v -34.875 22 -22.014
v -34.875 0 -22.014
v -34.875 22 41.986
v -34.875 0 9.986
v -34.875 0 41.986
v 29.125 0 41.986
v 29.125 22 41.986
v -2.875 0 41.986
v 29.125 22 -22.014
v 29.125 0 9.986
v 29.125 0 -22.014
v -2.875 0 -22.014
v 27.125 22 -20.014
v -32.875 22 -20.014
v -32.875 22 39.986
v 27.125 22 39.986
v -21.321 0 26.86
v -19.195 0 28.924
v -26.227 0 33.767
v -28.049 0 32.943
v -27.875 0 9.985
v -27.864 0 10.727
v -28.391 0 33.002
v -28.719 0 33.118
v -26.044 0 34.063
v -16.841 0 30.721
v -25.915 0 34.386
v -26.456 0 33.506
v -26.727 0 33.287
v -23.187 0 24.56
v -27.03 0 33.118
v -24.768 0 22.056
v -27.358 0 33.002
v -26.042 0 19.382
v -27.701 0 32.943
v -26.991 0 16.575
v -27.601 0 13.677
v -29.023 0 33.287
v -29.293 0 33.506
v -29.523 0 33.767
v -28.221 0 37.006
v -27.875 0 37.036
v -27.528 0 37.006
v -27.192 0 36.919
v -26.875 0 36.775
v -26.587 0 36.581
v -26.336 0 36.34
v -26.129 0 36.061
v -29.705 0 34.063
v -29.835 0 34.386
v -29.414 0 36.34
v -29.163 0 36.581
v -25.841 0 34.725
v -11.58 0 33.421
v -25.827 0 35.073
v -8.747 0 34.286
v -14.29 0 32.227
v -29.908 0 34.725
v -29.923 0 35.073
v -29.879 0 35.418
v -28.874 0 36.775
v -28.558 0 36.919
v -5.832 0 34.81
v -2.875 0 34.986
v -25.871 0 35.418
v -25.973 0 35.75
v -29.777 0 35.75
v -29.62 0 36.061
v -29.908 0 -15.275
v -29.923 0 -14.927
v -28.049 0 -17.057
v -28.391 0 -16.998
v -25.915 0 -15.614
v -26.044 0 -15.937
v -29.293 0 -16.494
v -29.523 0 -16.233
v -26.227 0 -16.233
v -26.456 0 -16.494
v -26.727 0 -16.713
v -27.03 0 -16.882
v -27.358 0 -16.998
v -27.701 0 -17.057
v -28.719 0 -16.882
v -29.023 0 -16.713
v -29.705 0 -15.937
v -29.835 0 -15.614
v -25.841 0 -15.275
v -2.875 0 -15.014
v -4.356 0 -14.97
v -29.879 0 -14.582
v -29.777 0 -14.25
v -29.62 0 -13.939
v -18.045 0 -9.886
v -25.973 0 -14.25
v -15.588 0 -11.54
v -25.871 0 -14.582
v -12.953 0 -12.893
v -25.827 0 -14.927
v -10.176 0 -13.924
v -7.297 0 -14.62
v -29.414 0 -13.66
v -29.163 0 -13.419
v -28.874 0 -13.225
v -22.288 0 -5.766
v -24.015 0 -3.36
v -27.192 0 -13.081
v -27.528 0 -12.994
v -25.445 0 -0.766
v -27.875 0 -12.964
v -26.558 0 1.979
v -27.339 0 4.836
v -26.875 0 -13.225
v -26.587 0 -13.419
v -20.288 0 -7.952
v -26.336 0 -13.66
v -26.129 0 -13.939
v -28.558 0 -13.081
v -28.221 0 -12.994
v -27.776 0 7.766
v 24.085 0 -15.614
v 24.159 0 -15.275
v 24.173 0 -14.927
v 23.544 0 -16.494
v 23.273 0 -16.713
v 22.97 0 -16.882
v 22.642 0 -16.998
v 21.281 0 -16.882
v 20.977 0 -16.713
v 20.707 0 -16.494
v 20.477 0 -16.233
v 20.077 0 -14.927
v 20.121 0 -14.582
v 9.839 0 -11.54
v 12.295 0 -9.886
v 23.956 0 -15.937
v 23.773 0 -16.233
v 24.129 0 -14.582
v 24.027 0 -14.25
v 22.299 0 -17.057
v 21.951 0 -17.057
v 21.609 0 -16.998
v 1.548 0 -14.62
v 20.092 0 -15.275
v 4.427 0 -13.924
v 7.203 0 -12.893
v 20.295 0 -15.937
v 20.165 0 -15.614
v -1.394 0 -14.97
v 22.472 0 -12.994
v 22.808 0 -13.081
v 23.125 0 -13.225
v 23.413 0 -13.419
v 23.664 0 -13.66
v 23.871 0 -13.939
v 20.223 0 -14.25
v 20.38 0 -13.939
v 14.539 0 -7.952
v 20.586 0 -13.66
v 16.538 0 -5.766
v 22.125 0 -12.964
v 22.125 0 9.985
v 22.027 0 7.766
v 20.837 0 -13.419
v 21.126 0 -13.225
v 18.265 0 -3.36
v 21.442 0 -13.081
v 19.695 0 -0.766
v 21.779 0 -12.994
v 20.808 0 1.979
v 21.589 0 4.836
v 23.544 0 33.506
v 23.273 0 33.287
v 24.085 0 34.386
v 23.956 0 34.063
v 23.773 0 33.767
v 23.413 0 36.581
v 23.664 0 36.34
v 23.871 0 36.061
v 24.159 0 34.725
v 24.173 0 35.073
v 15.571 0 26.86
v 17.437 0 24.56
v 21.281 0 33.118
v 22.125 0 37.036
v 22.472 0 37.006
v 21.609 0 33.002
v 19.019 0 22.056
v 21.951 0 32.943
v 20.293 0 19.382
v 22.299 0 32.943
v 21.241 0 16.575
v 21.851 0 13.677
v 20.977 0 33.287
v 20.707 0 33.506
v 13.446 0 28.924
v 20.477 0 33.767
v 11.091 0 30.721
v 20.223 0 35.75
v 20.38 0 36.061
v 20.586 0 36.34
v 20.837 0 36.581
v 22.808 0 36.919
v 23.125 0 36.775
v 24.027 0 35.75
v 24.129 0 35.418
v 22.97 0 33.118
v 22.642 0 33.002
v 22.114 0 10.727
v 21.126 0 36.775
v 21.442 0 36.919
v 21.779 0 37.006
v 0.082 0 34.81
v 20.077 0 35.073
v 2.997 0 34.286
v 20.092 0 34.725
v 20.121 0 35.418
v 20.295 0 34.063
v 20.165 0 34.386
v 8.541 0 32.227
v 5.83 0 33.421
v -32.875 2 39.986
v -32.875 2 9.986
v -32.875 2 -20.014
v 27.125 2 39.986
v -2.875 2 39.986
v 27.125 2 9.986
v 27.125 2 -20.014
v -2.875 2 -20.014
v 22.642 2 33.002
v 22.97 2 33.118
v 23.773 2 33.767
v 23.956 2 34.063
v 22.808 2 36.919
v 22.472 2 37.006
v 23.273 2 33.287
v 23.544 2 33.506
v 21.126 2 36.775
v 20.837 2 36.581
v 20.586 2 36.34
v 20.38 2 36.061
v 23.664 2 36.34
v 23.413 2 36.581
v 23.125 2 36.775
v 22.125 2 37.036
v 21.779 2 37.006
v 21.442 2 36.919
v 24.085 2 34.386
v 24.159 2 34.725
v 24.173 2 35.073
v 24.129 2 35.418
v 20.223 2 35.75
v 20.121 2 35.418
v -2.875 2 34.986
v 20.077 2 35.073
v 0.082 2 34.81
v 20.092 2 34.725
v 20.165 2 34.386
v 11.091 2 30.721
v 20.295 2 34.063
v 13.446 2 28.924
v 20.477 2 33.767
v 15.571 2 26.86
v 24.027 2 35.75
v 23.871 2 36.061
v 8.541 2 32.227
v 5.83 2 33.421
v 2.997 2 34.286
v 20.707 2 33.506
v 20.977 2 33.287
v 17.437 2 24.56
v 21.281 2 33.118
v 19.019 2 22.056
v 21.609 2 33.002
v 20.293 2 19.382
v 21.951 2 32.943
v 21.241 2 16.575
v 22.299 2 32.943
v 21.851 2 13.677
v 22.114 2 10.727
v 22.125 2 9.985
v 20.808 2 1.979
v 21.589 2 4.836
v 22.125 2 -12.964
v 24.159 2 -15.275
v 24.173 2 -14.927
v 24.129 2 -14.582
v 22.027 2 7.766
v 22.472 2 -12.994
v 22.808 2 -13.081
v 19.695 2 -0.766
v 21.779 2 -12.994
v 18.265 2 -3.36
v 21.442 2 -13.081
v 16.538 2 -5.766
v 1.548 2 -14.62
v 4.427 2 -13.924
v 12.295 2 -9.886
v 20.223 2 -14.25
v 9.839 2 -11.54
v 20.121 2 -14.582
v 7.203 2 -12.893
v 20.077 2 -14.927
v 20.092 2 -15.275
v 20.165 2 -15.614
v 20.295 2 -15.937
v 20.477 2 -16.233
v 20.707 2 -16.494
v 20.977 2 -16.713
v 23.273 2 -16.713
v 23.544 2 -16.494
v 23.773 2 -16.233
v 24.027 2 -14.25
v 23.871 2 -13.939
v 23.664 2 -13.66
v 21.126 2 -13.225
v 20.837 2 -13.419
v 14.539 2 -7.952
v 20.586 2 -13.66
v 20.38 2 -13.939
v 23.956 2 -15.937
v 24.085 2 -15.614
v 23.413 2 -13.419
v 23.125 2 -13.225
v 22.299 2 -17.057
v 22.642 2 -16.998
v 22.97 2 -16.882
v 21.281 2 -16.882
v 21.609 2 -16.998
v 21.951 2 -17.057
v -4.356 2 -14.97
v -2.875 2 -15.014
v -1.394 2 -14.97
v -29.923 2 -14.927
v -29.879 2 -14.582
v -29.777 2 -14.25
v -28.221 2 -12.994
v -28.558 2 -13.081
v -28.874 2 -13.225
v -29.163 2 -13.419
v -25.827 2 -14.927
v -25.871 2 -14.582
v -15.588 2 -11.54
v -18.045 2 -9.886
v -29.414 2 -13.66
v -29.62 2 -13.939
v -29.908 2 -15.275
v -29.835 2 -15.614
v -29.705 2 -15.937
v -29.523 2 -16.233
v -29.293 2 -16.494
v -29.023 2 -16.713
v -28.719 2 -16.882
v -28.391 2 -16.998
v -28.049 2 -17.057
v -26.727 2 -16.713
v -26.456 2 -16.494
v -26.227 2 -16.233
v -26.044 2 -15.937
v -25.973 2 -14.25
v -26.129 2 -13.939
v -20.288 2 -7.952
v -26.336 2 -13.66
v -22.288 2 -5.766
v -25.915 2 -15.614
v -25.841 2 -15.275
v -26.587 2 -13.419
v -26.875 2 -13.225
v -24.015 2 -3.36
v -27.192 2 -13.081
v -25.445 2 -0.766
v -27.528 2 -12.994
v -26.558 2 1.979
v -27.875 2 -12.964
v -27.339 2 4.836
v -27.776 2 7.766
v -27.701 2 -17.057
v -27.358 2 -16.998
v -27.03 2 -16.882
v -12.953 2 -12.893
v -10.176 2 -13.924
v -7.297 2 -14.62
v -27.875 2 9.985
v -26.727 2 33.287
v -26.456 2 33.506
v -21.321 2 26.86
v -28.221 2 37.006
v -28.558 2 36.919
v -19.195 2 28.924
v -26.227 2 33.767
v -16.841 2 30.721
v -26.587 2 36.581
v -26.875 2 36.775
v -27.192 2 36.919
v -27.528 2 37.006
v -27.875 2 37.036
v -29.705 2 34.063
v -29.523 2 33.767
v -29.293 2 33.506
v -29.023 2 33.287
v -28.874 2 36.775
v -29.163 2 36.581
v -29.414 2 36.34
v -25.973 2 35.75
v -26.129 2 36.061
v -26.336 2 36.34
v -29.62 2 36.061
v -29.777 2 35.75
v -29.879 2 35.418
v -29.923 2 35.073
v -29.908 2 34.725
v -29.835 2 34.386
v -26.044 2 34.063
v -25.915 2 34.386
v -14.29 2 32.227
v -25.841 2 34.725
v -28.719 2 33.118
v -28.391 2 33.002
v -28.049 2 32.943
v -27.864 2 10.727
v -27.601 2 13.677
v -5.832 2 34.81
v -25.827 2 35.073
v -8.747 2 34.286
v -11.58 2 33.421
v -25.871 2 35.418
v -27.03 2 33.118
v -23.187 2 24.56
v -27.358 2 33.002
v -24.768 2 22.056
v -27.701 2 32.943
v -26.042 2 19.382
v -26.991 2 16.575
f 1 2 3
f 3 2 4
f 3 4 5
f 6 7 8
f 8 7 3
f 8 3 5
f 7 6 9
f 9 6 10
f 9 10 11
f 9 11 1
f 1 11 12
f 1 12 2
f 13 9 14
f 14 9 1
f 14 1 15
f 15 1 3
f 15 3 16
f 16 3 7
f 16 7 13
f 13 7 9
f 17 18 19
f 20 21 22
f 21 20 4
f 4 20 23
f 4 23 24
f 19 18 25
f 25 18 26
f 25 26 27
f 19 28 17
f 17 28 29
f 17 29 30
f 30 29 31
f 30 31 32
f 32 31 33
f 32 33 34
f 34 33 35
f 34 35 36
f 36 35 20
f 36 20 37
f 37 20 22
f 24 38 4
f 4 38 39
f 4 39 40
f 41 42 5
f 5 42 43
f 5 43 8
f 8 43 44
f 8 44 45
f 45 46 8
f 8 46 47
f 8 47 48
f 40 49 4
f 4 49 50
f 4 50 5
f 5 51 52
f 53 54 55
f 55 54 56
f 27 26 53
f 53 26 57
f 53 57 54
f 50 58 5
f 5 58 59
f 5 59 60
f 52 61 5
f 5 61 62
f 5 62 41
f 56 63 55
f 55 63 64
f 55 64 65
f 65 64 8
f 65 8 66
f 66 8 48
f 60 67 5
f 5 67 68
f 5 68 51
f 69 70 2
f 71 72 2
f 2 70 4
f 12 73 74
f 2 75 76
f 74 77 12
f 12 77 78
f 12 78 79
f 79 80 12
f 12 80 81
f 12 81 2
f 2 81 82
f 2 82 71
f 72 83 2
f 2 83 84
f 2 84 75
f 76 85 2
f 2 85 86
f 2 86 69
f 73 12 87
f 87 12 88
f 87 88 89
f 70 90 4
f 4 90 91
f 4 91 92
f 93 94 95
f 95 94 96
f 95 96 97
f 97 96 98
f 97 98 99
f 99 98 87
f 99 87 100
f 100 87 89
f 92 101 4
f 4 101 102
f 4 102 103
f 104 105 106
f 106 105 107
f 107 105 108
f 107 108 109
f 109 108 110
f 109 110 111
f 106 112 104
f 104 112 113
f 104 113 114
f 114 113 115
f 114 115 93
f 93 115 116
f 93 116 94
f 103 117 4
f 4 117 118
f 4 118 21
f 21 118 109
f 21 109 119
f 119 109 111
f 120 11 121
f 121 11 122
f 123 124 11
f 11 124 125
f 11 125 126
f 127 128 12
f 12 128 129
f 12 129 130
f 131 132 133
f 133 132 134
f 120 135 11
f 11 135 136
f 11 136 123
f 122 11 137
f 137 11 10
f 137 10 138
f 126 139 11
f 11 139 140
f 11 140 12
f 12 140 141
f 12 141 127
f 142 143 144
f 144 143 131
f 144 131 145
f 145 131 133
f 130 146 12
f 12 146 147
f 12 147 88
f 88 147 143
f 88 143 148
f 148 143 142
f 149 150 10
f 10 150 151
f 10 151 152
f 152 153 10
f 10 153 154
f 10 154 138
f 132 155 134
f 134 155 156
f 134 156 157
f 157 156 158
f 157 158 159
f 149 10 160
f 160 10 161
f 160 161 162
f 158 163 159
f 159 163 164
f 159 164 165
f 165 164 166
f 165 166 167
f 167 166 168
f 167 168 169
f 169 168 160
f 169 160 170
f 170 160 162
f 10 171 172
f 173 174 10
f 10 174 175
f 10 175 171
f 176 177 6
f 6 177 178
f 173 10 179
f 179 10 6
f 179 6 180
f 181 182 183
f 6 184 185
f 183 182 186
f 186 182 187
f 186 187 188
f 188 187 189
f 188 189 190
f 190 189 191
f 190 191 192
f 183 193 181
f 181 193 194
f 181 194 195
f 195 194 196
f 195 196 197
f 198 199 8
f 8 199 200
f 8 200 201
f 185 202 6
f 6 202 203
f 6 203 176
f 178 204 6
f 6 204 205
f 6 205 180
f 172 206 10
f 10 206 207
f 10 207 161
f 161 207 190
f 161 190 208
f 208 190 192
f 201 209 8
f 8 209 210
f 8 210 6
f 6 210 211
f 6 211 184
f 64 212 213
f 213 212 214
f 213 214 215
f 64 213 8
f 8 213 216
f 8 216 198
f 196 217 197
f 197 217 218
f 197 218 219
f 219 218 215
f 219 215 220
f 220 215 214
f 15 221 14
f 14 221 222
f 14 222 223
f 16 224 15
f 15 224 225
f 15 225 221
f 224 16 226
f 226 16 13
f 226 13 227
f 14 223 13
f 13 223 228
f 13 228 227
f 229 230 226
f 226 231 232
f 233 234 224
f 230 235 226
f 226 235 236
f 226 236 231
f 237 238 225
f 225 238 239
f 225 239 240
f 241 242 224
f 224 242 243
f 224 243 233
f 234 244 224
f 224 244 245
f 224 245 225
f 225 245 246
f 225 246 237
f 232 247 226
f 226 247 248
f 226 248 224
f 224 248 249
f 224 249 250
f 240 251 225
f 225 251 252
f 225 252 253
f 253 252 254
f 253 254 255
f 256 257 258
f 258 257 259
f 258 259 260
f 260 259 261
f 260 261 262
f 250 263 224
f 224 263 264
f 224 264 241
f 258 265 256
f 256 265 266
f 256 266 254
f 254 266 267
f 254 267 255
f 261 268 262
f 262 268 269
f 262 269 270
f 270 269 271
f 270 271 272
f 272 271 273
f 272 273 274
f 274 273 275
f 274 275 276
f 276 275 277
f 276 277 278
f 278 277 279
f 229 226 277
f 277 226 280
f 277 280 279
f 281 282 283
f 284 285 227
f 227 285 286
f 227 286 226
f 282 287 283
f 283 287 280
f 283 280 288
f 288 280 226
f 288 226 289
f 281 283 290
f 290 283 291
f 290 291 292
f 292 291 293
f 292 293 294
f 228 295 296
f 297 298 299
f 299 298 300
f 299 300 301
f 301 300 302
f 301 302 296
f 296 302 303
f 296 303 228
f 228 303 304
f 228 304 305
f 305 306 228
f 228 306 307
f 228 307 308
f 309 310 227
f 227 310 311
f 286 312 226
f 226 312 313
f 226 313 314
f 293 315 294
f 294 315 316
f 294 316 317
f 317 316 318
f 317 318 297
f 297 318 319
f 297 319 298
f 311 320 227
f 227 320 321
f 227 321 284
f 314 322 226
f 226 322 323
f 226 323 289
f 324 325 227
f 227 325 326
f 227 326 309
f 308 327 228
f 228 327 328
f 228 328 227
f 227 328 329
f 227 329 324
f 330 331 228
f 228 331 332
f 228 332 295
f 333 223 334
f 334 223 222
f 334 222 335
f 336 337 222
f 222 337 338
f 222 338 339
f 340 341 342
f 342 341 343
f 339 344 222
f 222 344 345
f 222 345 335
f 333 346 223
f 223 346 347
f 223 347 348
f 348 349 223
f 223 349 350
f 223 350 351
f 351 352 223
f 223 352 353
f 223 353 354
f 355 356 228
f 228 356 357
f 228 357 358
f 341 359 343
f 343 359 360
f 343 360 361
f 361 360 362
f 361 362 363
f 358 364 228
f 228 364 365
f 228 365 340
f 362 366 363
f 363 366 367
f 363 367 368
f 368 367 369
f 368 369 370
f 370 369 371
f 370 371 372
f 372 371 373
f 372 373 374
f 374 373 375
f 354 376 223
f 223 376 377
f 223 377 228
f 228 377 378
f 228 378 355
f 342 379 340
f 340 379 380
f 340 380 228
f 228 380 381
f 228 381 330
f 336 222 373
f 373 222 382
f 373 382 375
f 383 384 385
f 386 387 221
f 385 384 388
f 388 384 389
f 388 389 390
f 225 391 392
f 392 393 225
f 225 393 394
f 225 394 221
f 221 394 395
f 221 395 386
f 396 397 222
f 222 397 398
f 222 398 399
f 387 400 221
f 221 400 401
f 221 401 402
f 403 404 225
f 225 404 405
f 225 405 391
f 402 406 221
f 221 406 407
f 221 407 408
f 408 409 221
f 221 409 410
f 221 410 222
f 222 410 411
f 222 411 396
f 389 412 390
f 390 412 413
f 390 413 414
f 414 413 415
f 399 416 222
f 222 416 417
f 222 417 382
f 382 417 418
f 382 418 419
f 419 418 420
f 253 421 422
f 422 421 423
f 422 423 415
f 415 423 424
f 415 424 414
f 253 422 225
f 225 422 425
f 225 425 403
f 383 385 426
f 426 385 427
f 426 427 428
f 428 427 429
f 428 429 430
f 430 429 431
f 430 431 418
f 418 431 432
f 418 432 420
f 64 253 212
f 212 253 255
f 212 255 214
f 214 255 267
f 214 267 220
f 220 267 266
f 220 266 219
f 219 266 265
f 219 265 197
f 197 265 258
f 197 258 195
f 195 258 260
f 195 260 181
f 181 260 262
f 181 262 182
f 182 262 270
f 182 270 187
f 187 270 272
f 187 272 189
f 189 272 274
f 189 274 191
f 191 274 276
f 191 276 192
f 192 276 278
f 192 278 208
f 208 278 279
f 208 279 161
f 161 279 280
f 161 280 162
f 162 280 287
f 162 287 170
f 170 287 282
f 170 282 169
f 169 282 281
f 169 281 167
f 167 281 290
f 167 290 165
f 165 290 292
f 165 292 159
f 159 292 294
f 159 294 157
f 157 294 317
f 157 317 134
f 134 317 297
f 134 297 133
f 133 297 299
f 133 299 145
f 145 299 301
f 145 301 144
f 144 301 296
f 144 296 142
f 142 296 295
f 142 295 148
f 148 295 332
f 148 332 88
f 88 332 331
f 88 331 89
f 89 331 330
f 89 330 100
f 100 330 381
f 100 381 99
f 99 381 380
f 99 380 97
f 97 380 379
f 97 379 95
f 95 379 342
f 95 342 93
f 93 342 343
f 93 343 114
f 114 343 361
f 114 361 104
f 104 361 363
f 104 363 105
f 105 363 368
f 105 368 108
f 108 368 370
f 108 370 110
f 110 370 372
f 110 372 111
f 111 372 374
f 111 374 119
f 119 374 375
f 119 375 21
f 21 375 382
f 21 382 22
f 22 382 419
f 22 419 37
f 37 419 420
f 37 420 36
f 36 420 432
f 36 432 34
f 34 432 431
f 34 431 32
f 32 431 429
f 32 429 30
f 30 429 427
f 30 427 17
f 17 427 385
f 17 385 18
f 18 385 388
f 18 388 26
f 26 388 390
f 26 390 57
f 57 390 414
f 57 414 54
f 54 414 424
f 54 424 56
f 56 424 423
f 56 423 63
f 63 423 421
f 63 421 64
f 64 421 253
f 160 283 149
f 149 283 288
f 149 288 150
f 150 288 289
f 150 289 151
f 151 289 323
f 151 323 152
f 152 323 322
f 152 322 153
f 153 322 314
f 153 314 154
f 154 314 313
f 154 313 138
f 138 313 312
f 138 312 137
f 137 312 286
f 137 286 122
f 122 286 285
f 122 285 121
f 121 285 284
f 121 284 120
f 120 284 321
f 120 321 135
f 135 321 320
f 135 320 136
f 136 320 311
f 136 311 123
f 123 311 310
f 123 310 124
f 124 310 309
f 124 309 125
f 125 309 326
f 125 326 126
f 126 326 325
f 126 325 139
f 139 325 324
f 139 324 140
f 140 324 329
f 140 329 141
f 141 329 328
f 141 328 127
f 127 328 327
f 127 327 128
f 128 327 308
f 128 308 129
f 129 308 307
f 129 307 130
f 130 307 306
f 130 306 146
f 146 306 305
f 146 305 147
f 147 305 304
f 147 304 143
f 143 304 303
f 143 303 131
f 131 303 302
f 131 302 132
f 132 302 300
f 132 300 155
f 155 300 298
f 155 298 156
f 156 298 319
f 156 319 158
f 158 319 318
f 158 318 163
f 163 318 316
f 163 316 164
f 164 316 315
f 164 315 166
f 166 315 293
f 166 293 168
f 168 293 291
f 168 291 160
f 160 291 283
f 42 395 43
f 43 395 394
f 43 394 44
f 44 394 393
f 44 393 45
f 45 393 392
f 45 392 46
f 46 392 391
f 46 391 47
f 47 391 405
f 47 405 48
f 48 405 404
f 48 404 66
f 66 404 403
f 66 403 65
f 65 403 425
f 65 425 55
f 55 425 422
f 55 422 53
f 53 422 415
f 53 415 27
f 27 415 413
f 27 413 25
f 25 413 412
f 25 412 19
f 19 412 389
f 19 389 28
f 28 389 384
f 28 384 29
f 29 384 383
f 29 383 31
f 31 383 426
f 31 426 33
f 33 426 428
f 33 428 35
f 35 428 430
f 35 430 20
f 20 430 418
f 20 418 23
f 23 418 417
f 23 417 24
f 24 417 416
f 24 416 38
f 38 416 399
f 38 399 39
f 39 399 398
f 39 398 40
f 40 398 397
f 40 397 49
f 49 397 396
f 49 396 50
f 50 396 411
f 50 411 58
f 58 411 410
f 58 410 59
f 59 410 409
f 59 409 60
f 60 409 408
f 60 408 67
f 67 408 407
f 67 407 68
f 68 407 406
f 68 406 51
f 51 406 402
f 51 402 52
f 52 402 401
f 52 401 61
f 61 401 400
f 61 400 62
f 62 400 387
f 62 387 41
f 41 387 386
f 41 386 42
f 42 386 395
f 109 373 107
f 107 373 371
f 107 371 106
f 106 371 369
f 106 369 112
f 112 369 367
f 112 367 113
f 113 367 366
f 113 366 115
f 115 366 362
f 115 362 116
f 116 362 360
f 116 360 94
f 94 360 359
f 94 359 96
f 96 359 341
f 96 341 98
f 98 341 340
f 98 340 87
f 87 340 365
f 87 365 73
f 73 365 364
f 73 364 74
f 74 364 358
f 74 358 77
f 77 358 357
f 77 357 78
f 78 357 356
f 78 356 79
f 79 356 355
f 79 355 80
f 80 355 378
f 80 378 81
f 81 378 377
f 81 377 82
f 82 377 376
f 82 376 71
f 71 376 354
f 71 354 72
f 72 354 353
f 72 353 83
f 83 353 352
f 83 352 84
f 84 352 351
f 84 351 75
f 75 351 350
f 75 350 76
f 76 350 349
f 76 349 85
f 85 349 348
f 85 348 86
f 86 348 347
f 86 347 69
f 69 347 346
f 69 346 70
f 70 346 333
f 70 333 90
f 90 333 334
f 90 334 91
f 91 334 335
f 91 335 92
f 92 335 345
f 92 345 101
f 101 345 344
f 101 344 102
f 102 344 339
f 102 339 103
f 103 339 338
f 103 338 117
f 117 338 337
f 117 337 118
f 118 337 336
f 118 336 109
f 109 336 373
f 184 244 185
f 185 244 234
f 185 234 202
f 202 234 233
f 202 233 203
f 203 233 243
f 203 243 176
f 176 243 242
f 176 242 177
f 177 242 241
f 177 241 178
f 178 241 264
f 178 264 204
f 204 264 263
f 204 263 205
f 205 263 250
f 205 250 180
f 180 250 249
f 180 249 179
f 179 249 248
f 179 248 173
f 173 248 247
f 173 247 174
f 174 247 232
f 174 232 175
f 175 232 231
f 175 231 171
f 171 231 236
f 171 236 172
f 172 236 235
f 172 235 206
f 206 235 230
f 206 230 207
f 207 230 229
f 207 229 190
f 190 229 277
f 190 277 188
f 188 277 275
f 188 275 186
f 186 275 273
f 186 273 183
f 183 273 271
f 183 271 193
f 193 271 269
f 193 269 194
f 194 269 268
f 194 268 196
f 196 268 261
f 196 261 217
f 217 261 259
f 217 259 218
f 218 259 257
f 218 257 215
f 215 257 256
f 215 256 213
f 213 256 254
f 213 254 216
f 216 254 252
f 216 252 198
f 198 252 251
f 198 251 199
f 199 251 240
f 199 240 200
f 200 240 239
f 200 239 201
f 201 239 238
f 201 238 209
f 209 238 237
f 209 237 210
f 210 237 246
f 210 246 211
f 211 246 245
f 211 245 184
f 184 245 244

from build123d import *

# Parameters (mm, degrees)
SKETCH_1_W          = 64
SKETCH_1_H          = 64
EXTRUDE_1_DEPTH     = 22
SHELL_1_T           = -2
SKETCH_2_R          = 25
CUT_EXTRUDE_1_DEPTH = 22
SKETCH_3_R          = 2.05
CUT_EXTRUDE_2_DEPTH = 22


with BuildPart() as part:
    # 草图1 → 凸台-拉伸1 (new body)
    with BuildSketch(Plane(origin=(0, 0, 0), x_dir=(1, 0, 0), z_dir=(0, 1, 0))):
        with Locations((-2.874704492, -9.985815603)):
            Rectangle(SKETCH_1_W, SKETCH_1_H)
    extrude(amount=EXTRUDE_1_DEPTH)

    # 抽壳1
    shell_1_openings = [part.faces().sort_by_distance(p)[0] for p in [
        (-2.874704492, 22, 9.985815603),
    ]]
    offset(amount=SHELL_1_T, openings=shell_1_openings, kind=Kind.INTERSECTION)

    # 草图2 → 切除-拉伸1 (cut)
    with BuildSketch(Plane(origin=(0, 2, 0), x_dir=(1, 0, 0), z_dir=(0, 1, 0))):
        with Locations(Location((-2.874704492, -9.985815603, 0), (0, 0, 270))):
            Circle(SKETCH_2_R)
    extrude(amount=-CUT_EXTRUDE_1_DEPTH, mode=Mode.SUBTRACT)

    # 草图3 → 切除-拉伸2 (cut)
    with BuildSketch(Plane(origin=(0, 2, 0), x_dir=(1, 0, 0), z_dir=(0, 1, 0))):
        with Locations(Location((-27.874704492, 15.014184397, 0), (0, 0, 270))):
            Circle(SKETCH_3_R)
        with Locations(Location((22.125295508, 15.014184397, 0), (0, 0, 270))):
            Circle(SKETCH_3_R)
        with Locations(Location((-27.874704492, -34.985815603, 0), (0, 0, 270))):
            Circle(SKETCH_3_R)
        with Locations(Location((22.125295508, -34.985815603, 0), (0, 0, 270))):
            Circle(SKETCH_3_R)
    extrude(amount=-CUT_EXTRUDE_2_DEPTH, mode=Mode.SUBTRACT)


solid = part.part
